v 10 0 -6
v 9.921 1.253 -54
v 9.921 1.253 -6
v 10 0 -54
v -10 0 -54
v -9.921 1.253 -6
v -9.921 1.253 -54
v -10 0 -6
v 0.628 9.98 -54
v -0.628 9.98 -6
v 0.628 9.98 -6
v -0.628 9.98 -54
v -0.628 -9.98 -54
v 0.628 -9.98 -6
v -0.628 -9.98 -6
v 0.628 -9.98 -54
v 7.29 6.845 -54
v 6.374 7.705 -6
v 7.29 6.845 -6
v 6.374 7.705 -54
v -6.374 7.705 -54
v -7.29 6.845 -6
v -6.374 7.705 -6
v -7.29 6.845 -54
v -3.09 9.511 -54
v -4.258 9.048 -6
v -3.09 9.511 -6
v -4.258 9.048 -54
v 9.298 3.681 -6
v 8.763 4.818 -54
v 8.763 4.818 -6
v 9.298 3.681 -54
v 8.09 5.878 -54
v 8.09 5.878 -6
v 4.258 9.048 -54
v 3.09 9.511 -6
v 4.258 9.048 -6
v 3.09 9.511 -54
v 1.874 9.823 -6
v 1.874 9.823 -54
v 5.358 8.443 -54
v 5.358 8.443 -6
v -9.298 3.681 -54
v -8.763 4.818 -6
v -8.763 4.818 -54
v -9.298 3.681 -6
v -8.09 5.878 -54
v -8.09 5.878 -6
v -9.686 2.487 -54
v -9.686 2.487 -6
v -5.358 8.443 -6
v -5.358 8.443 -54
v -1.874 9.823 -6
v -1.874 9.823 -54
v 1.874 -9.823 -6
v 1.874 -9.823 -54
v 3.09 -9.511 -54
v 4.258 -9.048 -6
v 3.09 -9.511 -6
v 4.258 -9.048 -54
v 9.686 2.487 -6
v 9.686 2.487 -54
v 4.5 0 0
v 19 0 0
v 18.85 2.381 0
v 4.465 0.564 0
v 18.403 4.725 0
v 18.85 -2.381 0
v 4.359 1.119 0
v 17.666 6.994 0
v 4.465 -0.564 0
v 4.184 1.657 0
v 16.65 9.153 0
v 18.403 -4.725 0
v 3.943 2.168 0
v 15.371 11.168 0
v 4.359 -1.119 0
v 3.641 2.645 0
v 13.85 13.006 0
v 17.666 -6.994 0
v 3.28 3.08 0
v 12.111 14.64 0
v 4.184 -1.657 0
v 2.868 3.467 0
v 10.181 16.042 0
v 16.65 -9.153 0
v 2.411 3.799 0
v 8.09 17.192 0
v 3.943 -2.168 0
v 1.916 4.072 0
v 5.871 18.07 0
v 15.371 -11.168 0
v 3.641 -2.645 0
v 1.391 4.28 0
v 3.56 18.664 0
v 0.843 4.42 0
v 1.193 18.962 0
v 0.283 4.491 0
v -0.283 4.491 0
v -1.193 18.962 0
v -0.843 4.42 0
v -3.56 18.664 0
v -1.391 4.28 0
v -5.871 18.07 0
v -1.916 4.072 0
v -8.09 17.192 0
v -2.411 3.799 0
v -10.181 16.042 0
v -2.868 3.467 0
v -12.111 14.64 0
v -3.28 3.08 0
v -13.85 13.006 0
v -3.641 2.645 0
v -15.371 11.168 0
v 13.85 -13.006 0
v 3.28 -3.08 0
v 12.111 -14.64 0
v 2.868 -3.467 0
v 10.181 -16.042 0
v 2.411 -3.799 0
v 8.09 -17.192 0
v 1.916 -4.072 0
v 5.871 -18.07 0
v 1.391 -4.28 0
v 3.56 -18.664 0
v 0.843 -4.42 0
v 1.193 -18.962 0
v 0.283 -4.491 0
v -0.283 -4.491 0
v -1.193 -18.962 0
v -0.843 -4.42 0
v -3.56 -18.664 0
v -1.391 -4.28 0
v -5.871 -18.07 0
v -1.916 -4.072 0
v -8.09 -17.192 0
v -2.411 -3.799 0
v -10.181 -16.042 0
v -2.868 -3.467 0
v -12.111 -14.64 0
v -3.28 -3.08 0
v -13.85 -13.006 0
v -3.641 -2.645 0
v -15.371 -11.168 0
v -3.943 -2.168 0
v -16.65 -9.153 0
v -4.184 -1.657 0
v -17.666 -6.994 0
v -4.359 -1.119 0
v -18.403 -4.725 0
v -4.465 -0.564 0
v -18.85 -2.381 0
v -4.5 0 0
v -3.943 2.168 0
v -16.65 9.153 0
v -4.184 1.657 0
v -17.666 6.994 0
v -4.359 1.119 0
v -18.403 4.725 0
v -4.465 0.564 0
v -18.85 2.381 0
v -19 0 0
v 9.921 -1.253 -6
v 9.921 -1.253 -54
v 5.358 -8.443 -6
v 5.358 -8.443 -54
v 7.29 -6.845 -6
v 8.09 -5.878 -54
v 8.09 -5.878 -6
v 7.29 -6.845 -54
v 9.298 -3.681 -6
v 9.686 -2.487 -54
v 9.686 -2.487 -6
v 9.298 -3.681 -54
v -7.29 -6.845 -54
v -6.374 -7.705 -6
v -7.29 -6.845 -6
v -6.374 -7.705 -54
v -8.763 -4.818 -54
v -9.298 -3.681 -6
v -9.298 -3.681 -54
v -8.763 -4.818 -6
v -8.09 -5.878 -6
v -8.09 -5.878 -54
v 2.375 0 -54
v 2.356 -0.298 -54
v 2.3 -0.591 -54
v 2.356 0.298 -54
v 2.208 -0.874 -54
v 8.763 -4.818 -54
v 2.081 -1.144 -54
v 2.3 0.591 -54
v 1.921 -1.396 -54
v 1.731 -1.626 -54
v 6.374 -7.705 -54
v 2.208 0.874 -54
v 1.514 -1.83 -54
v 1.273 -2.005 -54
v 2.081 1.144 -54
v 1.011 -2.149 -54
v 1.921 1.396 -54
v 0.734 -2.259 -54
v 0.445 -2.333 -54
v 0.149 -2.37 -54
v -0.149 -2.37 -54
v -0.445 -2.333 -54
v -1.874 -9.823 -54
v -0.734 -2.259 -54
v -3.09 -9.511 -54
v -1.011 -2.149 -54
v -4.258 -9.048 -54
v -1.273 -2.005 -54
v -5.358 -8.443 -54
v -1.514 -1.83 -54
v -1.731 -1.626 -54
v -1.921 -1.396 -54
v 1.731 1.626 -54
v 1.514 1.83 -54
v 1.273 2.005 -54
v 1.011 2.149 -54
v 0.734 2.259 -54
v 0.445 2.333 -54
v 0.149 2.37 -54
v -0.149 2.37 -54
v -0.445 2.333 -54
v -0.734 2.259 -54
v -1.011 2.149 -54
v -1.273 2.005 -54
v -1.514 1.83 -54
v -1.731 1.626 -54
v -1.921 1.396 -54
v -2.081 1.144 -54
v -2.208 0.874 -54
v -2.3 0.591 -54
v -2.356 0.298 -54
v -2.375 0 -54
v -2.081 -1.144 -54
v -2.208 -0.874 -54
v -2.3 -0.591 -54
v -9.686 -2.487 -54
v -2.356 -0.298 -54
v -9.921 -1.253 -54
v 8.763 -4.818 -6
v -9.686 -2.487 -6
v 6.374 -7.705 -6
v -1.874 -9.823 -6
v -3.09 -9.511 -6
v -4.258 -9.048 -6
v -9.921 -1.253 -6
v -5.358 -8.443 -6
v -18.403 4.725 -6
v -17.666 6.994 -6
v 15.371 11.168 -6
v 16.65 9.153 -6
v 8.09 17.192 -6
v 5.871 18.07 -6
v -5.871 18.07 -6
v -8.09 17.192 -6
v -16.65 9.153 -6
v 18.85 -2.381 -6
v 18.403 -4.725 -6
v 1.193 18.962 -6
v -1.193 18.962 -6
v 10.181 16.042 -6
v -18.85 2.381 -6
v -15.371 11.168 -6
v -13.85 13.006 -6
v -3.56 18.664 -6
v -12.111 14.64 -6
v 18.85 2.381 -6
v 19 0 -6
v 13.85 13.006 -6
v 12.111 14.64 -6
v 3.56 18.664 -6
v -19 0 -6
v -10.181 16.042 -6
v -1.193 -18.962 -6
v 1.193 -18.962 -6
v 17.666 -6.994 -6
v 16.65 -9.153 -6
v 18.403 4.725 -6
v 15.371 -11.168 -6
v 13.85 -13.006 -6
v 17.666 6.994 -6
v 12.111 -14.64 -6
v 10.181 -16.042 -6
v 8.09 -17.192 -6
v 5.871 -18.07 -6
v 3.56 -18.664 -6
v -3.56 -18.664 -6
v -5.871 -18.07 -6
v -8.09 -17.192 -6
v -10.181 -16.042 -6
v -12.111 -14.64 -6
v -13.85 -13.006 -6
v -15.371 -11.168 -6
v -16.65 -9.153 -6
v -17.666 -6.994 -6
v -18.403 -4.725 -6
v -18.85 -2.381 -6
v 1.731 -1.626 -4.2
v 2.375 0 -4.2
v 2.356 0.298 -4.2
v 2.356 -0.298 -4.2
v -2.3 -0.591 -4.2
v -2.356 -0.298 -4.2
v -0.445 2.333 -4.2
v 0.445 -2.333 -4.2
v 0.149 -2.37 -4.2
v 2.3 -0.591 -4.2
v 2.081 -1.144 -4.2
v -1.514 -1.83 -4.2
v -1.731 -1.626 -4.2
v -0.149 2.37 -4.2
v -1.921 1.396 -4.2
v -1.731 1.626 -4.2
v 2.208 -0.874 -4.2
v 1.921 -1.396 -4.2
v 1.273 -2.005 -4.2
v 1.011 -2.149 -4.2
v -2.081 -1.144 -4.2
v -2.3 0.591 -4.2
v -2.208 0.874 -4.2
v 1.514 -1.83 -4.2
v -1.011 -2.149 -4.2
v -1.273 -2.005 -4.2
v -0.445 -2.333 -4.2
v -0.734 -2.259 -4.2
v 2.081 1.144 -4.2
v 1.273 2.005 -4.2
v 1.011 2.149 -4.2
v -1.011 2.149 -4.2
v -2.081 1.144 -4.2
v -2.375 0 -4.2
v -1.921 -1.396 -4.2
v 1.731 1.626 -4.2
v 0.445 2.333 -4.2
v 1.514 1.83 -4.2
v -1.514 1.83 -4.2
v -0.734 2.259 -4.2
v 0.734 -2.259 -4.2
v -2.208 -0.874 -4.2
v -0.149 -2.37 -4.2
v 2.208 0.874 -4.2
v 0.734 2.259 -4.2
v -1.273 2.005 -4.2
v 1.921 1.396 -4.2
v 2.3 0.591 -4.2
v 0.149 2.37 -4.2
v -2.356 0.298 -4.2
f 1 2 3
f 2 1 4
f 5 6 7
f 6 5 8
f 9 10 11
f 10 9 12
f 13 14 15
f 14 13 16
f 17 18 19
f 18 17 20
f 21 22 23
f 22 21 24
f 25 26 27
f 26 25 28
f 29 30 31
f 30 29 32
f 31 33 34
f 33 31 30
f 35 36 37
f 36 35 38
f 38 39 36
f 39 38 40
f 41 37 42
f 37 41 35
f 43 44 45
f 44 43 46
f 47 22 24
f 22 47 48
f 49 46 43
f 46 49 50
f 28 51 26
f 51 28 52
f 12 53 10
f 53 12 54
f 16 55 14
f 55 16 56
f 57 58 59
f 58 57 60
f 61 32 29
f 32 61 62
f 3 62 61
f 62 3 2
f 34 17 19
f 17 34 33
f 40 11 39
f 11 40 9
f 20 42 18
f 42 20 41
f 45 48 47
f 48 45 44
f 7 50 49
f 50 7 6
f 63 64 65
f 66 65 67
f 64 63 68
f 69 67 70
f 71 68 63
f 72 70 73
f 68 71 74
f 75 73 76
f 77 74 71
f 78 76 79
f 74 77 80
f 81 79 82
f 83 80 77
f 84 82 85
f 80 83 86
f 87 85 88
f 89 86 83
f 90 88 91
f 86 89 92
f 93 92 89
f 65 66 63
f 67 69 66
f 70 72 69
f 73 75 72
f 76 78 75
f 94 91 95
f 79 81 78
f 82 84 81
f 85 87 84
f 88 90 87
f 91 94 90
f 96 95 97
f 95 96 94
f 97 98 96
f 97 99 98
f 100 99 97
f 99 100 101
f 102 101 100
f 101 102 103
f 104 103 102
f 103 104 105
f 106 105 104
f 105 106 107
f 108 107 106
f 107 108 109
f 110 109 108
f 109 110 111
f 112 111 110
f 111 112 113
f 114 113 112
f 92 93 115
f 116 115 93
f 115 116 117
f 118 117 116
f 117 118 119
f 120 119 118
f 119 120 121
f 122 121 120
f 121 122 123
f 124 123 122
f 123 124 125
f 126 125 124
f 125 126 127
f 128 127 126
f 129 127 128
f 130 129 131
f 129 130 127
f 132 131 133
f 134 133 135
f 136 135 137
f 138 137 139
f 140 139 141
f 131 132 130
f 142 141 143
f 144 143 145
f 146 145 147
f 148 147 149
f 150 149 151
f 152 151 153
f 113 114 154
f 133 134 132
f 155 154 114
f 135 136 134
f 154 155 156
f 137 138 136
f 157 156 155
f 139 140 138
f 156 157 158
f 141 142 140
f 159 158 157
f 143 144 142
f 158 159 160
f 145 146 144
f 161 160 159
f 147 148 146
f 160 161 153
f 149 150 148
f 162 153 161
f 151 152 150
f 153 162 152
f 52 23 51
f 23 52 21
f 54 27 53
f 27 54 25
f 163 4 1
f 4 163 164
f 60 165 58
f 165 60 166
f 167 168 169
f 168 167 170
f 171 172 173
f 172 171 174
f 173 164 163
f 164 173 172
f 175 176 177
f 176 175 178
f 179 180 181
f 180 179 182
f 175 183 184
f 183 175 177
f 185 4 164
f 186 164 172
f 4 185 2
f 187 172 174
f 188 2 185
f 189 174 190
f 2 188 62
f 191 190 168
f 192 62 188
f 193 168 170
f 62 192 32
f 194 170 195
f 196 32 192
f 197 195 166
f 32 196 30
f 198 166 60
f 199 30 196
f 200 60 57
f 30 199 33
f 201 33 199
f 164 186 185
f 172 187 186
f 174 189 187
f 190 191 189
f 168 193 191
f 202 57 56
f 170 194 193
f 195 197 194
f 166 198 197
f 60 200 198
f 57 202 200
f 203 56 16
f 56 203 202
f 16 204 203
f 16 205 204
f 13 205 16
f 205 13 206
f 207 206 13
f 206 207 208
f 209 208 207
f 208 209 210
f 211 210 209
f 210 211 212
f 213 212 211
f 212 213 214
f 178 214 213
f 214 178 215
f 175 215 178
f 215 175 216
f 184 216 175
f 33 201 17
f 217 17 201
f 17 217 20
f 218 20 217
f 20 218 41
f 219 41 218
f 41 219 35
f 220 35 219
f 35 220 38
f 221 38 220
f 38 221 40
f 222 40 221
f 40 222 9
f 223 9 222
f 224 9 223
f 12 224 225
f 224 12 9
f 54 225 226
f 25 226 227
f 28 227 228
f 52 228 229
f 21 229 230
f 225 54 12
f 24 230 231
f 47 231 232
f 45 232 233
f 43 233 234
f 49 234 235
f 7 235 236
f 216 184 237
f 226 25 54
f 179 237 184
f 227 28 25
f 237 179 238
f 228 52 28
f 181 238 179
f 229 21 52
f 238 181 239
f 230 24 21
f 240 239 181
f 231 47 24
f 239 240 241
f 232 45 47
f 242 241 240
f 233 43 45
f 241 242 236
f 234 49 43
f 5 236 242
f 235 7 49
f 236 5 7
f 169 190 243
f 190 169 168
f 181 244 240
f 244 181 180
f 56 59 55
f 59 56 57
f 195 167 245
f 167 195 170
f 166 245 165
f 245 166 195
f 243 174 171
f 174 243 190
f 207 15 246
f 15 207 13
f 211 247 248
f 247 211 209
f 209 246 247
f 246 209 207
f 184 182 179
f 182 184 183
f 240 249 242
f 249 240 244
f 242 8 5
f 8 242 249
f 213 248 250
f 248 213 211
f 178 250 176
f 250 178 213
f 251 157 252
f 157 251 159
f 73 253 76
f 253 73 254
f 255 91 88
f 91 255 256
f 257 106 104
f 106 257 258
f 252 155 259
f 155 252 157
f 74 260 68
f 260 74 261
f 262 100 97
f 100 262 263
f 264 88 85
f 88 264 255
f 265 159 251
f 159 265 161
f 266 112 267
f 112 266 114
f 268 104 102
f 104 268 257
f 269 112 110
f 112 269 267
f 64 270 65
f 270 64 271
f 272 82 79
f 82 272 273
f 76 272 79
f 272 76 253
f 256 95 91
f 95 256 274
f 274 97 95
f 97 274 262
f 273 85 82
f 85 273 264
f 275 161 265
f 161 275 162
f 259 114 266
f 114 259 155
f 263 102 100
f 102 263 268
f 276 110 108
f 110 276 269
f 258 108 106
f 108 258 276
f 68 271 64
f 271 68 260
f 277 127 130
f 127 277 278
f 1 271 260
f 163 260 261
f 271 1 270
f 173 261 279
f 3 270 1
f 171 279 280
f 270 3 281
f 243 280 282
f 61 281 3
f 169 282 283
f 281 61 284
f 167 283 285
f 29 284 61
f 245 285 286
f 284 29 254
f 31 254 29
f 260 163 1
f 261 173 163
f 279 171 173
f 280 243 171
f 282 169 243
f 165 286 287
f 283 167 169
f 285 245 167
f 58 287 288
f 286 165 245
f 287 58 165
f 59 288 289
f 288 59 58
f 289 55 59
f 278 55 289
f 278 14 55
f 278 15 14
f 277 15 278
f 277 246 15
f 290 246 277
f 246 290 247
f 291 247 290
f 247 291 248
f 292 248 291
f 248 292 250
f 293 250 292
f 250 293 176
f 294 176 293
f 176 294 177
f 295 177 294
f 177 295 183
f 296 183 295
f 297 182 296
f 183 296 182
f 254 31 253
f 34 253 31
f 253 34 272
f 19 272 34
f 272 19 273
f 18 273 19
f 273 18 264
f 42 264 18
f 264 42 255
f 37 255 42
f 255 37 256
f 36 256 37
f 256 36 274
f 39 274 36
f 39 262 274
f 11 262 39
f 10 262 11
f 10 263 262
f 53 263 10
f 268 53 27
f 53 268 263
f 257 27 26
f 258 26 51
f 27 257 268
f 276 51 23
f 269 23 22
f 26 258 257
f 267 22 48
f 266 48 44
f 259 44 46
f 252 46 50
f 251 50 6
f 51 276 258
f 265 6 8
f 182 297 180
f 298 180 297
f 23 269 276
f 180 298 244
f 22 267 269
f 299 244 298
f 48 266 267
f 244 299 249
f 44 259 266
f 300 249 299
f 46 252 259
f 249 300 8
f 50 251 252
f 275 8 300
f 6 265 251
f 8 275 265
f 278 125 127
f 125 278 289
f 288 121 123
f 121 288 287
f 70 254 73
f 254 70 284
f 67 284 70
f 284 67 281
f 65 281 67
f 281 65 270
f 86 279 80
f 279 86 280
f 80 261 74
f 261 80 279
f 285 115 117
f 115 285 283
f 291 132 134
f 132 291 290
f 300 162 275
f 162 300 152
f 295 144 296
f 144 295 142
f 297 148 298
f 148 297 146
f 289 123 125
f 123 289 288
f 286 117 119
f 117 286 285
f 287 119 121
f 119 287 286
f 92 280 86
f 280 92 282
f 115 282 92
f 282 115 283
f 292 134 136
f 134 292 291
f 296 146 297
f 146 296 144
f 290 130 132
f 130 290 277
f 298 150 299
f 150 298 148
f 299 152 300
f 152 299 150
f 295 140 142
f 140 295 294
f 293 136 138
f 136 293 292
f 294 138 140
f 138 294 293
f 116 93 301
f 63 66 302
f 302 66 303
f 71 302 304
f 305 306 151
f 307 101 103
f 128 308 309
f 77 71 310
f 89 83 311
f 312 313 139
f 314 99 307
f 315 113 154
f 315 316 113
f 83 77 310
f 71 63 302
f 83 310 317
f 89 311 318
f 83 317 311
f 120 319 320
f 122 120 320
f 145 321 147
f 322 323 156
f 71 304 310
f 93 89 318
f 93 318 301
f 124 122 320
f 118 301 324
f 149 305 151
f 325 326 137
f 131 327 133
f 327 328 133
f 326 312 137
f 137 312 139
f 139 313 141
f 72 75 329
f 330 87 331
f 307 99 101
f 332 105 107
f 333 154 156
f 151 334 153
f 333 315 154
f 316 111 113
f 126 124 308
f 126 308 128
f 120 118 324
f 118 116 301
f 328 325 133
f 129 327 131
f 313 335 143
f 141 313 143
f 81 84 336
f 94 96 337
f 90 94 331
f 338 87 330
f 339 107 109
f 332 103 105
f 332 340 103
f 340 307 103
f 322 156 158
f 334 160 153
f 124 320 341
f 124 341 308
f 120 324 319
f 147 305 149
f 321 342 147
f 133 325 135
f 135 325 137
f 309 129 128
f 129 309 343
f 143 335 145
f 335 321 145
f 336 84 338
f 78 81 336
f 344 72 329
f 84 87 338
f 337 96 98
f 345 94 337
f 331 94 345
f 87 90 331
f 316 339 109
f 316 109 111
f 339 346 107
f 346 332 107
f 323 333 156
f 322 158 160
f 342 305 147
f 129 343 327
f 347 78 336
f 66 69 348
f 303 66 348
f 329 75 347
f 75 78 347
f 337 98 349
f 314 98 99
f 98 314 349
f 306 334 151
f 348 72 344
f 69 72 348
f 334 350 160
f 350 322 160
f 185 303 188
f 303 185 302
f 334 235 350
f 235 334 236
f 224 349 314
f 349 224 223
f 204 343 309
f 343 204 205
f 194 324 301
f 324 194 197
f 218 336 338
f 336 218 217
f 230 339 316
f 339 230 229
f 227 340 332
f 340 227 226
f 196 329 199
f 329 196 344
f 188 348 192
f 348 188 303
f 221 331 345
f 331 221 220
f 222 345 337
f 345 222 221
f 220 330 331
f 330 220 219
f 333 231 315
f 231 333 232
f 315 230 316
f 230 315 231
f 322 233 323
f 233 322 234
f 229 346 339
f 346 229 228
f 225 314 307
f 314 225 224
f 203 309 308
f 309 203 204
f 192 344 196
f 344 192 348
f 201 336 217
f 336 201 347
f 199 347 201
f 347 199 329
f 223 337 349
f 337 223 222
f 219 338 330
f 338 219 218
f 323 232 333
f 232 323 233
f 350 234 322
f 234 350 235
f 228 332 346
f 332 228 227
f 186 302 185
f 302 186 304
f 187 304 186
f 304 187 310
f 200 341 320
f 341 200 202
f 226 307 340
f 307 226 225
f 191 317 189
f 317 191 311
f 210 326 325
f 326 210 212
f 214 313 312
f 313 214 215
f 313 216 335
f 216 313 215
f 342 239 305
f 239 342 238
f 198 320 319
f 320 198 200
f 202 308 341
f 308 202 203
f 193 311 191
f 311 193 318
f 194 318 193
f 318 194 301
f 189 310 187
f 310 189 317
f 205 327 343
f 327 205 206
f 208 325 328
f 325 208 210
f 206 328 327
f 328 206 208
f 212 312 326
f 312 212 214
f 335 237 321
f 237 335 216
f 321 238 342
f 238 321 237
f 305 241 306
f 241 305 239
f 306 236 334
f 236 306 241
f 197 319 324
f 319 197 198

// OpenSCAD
$fn = 50;


difference() {
	union() {
		translate(v = [0, 0, -54.0000000000]) {
			cylinder(h = 54, r = 10.0000000000);
		}
		translate(v = [0, 0, -6.0000000000]) {
			cylinder(h = 6, r = 19.0000000000);
		}
	}
	union() {
		translate(v = [0, 0, 0]) {
			rotate(a = [0, 0, 0]) {
				difference() {
					union() {
						#translate(v = [0, 0, -54.0000000000]) {
							cylinder(h = 54, r = 2.2500000000);
						}
						#translate(v = [0, 0, -4.2000000000]) {
							cylinder(h = 4.2000000000, r = 10.0000000000, r1 = 2.3750000000, r2 = 4.5000000000);
						}
						#translate(v = [0, 0, -54.0000000000]) {
							cylinder(h = 54, r = 2.3750000000);
						}
						#translate(v = [0, 0, -54.0000000000]) {
							cylinder(h = 54, r = 2.2500000000);
						}
					}
					union();
				}
			}
		}
	}
}
